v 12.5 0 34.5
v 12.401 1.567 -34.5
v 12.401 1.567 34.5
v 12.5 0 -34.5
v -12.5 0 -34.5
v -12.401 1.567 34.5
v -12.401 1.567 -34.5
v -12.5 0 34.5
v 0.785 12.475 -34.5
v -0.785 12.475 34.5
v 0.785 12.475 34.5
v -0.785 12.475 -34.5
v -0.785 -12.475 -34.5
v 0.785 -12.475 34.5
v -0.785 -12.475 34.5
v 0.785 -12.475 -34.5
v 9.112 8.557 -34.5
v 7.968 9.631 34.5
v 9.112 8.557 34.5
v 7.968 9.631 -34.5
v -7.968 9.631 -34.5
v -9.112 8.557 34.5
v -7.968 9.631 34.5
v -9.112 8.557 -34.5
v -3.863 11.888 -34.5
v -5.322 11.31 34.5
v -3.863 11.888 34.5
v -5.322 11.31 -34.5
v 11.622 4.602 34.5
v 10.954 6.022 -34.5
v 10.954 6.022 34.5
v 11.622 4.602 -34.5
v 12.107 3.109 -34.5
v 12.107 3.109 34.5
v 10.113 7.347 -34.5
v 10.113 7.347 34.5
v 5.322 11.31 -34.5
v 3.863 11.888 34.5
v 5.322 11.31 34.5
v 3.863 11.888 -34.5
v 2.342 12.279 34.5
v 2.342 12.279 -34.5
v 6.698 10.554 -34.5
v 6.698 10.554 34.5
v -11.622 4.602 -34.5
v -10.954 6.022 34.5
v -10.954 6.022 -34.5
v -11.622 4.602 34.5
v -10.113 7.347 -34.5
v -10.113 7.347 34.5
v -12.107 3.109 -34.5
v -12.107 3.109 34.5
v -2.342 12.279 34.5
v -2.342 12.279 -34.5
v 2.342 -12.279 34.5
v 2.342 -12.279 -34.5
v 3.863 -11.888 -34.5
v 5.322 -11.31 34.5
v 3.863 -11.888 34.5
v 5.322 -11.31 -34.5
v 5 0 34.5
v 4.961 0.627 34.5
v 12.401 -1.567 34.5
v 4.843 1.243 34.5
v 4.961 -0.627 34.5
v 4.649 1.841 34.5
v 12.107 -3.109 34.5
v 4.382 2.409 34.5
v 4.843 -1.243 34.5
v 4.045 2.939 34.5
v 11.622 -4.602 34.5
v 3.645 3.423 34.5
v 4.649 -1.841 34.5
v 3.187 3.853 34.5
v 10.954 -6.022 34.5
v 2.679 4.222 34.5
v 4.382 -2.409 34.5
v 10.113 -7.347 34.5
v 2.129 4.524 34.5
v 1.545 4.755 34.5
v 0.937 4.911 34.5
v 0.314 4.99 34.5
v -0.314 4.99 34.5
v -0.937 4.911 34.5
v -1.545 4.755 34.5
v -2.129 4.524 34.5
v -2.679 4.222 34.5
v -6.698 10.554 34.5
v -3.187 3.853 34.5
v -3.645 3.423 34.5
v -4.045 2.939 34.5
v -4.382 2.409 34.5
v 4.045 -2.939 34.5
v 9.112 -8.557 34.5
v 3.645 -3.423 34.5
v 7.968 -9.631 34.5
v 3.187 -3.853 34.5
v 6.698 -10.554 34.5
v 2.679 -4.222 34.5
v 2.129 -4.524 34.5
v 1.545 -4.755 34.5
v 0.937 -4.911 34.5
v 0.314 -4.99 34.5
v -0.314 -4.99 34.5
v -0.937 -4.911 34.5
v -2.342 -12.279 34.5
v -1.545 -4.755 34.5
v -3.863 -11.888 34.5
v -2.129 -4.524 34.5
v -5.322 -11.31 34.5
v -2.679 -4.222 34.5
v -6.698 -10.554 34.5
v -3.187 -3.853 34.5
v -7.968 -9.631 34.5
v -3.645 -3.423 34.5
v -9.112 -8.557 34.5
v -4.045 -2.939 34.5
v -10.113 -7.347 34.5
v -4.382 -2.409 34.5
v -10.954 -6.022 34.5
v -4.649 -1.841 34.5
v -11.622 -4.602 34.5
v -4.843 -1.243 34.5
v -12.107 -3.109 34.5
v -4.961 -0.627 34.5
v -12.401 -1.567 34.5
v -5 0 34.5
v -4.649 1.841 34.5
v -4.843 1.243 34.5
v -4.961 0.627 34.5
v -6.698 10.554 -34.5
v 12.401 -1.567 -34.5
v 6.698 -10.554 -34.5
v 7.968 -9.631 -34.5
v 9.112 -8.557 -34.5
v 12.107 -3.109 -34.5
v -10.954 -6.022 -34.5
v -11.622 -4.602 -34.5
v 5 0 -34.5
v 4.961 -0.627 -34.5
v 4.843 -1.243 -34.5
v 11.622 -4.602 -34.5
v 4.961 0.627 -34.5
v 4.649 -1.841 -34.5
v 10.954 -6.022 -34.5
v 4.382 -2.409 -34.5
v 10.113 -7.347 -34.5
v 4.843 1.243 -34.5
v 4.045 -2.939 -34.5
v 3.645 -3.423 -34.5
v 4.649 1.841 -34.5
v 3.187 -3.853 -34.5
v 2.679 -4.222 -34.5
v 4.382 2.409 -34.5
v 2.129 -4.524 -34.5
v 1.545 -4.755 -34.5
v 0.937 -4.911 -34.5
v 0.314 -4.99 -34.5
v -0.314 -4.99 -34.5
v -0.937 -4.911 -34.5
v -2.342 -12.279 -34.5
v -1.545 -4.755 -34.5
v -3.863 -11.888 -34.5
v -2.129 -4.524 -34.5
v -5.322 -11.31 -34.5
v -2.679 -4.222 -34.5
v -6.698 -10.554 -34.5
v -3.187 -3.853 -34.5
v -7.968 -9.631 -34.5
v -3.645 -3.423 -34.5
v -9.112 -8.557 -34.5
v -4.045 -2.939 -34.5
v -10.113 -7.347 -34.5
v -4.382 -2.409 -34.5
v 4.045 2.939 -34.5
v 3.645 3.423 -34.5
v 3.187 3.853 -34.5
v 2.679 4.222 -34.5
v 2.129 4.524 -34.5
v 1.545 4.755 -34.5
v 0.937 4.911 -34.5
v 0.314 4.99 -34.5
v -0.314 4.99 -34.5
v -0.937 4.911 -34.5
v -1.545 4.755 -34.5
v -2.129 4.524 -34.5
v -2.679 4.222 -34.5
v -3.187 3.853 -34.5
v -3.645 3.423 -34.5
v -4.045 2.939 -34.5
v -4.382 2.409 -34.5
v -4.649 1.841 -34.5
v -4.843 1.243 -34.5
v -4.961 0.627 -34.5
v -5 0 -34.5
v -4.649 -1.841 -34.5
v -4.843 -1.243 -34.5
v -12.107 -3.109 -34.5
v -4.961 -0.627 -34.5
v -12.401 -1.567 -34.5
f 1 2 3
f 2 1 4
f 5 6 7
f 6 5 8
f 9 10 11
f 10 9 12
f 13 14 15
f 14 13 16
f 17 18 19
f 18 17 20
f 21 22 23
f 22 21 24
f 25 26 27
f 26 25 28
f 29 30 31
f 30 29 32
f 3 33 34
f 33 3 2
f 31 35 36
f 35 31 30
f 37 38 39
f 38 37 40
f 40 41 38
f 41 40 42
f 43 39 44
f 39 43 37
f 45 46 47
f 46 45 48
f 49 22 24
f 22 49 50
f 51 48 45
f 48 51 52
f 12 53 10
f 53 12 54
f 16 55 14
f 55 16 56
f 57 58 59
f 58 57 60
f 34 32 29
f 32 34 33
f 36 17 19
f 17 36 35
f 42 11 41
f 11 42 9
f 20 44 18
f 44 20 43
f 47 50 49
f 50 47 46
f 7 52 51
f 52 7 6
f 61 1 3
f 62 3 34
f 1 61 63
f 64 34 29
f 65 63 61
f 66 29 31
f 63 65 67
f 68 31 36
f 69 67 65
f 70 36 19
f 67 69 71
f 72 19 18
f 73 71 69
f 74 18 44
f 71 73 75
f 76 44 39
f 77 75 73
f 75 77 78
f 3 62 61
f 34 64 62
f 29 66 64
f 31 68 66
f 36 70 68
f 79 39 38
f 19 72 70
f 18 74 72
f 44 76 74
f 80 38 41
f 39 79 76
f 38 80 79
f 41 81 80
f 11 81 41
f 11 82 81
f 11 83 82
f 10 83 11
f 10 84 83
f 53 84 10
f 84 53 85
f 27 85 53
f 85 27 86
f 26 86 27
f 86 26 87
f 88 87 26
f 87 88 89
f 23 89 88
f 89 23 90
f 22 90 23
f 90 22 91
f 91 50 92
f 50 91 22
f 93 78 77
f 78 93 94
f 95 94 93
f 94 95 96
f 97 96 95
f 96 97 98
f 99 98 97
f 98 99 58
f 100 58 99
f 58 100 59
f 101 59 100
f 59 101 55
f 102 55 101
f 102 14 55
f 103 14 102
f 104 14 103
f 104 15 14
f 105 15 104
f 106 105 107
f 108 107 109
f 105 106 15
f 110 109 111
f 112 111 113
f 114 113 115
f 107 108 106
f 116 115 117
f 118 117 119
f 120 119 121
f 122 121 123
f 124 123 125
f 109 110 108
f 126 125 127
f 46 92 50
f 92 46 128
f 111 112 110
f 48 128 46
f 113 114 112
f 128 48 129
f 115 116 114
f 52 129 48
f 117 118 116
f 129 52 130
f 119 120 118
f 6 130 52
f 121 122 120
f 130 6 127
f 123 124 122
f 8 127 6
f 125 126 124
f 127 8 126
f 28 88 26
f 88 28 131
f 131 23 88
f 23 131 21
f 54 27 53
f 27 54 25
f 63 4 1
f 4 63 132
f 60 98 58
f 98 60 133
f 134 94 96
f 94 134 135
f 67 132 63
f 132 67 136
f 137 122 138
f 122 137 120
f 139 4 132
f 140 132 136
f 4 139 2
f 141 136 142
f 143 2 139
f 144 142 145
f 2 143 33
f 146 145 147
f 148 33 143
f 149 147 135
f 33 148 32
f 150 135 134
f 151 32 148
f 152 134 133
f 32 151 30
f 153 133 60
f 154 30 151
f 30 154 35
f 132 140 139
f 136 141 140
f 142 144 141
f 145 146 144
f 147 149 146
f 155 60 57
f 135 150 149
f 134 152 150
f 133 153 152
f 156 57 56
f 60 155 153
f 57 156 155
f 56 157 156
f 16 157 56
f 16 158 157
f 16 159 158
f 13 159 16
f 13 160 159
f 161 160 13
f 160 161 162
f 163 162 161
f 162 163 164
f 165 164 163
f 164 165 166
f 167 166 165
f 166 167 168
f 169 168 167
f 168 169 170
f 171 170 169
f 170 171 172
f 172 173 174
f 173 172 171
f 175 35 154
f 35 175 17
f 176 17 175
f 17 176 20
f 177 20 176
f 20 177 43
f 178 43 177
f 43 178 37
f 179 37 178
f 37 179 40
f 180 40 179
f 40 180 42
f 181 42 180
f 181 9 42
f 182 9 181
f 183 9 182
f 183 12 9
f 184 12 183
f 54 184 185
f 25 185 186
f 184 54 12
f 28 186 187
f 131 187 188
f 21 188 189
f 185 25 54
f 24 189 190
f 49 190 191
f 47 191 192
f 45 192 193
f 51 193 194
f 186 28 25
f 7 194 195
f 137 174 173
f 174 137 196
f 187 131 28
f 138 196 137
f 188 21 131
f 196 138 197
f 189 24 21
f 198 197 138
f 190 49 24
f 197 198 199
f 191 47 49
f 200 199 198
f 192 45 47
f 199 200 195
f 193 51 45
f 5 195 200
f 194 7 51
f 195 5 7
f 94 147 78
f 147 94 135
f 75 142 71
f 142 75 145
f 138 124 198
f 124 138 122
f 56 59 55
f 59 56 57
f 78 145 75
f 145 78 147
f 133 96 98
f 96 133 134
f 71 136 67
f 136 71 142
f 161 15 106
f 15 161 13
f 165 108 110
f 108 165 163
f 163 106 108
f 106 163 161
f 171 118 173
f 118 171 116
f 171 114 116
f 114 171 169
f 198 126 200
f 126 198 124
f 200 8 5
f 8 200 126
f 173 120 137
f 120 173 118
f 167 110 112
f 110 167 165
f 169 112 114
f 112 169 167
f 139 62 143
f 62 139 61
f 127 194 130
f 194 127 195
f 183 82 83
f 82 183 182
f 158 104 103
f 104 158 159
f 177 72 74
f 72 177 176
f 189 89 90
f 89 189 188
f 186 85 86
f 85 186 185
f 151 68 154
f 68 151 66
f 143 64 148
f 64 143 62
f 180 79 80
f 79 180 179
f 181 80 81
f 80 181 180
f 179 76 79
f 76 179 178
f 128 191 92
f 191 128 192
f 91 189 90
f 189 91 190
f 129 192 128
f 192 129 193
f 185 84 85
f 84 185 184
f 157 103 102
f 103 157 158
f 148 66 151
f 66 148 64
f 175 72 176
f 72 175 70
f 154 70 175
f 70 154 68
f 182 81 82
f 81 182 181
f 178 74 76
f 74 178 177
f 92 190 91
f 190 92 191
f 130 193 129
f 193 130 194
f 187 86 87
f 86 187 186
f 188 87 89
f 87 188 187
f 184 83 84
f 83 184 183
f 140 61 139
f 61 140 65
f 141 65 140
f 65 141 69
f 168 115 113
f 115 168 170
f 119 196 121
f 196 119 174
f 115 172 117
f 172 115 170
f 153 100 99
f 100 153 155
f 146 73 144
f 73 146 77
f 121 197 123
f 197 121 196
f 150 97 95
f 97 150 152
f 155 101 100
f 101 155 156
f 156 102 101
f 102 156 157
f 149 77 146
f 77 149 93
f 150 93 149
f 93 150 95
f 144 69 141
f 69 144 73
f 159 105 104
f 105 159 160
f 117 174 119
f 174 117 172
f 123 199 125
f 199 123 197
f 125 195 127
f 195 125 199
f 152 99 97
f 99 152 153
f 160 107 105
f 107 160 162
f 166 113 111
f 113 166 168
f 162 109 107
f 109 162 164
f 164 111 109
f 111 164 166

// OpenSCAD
$fn = 50;


difference() {
	union() {
		translate(v = [0, 0, -34.5000000000]) {
			cylinder(h = 69, r = 12.5000000000);
		}
	}
	union() {
		translate(v = [0, 0, -100.0000000000]) {
			cylinder(h = 200, r = 5);
		}
	}
}
